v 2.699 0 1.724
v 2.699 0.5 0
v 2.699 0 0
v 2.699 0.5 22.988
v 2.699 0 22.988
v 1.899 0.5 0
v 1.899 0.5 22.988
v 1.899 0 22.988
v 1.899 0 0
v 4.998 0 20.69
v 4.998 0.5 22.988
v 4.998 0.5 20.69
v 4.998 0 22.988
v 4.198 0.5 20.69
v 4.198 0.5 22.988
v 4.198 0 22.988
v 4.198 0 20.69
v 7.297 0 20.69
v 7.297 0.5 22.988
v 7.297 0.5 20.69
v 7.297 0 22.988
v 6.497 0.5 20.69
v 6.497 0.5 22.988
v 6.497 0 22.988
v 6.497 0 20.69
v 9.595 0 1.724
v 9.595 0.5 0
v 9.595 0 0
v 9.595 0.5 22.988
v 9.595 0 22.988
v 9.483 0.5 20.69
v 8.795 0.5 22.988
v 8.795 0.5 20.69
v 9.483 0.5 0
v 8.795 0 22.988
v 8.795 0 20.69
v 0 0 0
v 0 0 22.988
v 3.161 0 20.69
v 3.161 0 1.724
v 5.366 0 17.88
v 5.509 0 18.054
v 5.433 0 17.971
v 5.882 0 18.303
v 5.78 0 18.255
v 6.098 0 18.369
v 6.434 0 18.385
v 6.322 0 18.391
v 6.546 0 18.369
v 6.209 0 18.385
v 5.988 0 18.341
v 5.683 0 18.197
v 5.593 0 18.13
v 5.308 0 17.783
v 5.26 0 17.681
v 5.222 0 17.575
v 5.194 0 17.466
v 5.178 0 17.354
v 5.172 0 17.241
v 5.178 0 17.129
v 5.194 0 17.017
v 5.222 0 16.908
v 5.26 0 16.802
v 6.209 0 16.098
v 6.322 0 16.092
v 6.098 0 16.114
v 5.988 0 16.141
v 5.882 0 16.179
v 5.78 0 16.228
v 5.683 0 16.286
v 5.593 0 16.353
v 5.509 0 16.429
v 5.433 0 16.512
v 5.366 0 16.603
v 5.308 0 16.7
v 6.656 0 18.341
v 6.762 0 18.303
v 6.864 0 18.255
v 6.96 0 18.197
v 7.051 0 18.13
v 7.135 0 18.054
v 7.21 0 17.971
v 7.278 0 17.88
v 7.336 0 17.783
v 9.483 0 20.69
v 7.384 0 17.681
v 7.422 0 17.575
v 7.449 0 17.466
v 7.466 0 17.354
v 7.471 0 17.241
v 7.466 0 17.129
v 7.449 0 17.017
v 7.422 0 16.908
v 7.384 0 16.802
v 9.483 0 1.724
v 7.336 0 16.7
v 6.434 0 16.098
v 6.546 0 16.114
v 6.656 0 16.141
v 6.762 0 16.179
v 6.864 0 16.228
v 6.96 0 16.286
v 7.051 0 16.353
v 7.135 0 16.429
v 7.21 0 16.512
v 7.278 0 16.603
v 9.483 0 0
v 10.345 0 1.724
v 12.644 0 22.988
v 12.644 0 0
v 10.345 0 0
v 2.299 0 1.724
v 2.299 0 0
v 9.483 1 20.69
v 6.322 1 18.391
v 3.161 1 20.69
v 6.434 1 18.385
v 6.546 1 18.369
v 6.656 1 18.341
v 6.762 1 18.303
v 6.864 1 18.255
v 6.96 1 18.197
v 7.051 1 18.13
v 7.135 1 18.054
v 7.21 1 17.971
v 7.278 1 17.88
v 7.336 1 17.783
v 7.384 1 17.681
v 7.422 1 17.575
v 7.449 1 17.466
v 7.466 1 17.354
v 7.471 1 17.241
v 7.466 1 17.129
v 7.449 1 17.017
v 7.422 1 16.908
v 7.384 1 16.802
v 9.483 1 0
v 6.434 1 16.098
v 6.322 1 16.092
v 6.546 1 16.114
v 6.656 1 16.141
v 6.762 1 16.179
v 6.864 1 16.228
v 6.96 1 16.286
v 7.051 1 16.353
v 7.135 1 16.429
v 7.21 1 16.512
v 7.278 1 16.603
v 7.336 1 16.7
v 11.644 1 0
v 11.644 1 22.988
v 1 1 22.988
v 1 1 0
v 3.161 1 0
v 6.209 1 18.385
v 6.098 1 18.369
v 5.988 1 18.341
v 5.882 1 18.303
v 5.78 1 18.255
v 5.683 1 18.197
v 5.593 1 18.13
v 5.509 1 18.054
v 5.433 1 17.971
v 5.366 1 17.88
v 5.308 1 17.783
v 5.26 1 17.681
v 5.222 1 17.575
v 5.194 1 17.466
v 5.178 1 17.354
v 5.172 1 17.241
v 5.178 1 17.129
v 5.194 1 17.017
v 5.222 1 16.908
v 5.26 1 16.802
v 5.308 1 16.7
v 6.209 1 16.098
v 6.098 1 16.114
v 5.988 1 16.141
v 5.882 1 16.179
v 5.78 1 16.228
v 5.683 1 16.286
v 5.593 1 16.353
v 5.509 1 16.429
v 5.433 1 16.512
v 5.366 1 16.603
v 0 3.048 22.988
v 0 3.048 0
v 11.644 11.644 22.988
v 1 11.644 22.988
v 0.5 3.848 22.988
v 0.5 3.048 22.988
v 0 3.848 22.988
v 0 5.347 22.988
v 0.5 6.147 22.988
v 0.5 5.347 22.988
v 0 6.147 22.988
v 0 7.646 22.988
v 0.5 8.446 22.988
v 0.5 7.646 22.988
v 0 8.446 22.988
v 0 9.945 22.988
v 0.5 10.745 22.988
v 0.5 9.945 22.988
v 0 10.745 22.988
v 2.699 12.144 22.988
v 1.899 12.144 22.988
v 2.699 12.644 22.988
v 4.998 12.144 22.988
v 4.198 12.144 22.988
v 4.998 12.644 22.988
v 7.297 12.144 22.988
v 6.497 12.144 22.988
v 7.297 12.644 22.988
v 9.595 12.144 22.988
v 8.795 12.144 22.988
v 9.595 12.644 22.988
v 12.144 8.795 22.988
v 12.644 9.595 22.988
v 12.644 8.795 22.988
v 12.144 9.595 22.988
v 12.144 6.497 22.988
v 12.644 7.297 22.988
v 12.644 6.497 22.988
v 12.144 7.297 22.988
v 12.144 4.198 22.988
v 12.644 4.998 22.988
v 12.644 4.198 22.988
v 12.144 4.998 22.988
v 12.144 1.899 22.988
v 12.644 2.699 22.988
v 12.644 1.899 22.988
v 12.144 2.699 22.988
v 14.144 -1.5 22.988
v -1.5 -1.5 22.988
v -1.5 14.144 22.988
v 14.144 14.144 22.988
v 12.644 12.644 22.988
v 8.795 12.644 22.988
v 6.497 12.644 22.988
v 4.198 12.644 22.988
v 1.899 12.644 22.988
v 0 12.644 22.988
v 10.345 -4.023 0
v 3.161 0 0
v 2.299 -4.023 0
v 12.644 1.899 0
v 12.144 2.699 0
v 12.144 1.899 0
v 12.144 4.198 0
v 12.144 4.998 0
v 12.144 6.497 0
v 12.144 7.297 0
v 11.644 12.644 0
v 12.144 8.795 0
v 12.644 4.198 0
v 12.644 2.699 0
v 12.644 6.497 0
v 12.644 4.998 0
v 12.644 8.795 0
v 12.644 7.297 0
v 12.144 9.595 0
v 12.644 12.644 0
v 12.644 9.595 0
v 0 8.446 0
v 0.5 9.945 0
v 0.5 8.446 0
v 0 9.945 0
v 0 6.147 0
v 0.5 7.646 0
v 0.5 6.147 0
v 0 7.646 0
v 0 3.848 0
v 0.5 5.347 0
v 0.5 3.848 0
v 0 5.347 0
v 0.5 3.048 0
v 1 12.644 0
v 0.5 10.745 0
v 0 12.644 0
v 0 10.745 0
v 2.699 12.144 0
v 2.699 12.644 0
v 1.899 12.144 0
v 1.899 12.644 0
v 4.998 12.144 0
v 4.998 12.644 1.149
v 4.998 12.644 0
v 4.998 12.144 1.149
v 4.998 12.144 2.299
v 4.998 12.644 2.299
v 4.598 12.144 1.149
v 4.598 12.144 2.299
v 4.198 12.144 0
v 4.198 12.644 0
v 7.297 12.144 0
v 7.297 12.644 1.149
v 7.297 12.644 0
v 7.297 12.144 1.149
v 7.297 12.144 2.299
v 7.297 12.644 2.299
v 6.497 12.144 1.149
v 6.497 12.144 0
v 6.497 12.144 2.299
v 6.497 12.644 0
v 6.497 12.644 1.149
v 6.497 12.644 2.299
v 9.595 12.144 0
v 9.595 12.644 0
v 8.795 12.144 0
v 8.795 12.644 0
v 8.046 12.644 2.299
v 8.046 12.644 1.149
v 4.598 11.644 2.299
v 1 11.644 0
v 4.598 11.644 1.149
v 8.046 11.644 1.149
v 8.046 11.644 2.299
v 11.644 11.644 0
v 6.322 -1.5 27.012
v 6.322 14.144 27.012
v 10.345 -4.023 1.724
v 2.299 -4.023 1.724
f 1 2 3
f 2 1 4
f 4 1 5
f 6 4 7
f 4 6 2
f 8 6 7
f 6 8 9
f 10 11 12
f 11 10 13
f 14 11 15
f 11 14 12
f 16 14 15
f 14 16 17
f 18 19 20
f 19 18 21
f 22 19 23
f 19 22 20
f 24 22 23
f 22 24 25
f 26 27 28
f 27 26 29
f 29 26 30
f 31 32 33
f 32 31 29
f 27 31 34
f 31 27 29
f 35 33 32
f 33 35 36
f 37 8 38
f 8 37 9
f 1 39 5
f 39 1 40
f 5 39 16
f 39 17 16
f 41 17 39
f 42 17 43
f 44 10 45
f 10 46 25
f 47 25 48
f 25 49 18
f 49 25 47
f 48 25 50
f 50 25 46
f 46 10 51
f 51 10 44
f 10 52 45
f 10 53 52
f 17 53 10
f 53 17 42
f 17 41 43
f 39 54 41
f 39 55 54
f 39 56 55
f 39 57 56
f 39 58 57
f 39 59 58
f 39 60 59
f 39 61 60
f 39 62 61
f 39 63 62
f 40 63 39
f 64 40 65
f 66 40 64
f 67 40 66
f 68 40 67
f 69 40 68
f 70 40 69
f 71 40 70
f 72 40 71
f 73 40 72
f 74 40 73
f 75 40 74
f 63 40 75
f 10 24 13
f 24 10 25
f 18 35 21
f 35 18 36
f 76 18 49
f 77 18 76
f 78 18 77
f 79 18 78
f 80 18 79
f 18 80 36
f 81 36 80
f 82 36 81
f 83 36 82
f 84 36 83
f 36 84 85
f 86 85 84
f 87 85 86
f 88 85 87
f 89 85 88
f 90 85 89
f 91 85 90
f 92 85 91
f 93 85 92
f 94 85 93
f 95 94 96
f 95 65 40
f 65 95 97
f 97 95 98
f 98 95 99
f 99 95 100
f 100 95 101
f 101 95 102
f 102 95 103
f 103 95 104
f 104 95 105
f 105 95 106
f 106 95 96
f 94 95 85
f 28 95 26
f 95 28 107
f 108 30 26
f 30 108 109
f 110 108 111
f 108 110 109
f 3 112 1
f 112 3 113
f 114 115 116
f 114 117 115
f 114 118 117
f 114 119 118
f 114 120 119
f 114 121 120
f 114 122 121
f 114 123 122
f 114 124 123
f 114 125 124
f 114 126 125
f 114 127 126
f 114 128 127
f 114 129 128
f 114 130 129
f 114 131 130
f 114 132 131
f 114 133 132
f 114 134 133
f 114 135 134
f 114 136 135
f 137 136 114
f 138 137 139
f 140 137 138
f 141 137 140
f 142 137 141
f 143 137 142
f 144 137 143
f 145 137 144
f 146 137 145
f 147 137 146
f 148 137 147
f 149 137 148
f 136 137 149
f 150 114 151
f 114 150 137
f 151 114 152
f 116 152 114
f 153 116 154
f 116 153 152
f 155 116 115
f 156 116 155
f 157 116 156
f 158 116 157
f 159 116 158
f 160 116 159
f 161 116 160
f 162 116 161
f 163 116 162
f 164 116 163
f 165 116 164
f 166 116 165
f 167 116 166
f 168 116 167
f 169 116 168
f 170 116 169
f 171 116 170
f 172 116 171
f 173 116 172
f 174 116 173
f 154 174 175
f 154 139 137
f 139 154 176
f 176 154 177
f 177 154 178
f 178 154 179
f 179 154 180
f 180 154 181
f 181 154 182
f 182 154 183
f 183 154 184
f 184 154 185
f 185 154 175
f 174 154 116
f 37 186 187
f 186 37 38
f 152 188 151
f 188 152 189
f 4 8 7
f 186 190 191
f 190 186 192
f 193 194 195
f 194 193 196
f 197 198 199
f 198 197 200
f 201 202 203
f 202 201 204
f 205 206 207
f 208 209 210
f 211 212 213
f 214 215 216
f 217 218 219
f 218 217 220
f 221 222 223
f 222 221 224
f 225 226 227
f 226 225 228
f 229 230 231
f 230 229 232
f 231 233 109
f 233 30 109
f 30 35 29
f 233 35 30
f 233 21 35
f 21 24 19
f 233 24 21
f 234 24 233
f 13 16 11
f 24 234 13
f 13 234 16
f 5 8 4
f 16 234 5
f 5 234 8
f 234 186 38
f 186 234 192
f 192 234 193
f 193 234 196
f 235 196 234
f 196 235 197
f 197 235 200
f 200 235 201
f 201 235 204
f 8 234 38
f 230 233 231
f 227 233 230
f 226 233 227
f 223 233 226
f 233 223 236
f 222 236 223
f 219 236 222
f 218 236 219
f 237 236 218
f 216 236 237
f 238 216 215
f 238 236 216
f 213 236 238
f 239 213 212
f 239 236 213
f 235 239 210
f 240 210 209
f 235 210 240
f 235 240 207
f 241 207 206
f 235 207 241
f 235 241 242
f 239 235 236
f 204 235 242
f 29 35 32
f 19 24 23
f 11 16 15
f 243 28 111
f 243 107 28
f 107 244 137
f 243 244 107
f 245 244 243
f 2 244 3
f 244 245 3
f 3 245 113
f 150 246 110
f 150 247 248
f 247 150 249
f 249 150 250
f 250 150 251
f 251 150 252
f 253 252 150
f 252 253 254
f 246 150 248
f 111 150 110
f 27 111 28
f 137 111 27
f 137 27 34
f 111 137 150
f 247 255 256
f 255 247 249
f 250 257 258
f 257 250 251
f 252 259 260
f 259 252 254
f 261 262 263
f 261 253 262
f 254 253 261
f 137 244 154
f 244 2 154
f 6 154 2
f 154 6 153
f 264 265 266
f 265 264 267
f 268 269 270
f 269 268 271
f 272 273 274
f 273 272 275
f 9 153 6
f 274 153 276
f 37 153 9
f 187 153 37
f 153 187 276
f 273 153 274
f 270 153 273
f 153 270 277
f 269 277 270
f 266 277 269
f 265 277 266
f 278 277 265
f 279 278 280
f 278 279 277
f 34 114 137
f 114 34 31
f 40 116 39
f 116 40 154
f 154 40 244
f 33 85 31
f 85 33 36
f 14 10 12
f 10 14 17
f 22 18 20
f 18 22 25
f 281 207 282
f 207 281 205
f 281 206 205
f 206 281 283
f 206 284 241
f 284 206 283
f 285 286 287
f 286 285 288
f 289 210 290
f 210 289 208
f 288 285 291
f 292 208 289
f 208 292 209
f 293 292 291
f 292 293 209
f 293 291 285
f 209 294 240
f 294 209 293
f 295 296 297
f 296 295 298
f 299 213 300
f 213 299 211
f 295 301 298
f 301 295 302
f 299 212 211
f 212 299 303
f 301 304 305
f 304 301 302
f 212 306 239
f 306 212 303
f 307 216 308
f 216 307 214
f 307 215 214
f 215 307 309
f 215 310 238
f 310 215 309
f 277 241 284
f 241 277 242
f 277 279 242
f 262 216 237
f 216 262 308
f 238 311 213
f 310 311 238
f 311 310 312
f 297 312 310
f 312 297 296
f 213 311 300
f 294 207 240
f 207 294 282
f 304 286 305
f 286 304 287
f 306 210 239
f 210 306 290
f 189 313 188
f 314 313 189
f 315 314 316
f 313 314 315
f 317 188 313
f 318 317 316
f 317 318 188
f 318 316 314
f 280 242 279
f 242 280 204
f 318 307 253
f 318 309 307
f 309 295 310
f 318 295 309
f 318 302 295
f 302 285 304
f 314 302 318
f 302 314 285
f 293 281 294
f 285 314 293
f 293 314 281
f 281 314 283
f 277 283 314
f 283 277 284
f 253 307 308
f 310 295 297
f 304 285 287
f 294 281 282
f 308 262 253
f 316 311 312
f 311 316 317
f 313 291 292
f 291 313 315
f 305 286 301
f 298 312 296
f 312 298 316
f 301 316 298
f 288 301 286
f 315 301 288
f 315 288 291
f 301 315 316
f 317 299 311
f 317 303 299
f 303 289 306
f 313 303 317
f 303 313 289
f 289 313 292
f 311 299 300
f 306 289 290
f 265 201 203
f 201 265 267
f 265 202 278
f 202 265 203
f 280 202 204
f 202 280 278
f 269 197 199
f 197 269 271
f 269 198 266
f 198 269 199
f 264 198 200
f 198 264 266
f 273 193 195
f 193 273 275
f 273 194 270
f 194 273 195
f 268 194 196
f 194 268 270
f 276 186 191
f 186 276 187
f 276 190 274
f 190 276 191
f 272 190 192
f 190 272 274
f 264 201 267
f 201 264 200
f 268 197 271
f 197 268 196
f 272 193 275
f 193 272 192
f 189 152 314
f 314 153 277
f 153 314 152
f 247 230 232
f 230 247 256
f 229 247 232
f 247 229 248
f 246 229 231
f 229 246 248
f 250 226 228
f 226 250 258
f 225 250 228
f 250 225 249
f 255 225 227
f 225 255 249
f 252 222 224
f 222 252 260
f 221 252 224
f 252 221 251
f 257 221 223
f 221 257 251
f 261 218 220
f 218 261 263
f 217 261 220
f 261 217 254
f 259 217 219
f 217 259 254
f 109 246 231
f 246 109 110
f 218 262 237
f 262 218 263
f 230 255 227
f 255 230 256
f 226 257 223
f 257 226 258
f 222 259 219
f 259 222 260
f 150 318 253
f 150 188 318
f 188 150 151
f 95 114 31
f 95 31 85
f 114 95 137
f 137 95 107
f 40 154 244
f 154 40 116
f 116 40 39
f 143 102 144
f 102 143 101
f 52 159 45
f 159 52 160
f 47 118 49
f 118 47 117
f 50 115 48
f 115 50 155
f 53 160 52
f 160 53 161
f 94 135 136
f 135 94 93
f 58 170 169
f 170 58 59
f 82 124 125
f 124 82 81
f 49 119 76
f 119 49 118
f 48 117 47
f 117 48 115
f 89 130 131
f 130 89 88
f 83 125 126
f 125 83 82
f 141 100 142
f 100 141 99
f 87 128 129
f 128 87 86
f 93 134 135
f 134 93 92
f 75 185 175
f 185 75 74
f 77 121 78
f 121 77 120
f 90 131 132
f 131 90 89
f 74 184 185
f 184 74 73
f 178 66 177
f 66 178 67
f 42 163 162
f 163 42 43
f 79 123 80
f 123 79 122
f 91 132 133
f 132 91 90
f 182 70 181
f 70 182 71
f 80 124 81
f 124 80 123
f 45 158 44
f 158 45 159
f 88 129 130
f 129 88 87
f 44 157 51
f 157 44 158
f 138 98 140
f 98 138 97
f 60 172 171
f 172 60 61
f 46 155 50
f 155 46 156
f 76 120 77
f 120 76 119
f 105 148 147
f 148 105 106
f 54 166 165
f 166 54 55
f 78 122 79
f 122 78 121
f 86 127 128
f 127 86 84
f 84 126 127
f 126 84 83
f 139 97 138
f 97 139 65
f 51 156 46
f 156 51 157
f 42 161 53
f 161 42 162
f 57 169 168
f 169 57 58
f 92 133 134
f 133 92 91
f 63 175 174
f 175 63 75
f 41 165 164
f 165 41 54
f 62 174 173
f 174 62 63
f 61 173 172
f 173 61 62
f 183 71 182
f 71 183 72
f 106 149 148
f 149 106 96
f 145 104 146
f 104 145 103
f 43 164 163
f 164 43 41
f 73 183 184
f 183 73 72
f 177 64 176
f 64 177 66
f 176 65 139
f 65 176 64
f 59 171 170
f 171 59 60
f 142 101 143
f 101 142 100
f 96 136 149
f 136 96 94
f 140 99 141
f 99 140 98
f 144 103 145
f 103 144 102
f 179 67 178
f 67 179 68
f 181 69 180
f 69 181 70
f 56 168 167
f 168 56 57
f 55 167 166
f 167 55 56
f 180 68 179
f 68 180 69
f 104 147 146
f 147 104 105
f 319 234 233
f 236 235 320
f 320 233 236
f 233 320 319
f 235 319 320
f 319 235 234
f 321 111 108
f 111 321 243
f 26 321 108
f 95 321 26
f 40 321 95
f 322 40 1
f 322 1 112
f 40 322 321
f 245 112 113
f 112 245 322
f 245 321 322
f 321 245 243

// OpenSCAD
// file: slawojka_step.scad
/*
 * PROMPT: Entrance step of the Polish outdoor toilet (sławojka) in H0 scale (1:87).
 * Small flat concrete slab placed in front of the door. Printed flat.
 */

$fn = 32;
S = 1/87;

step_w_real = 700;
step_d_real = 350;
step_h_real = 150;

step_w = step_w_real * S;
step_d = step_d_real * S;
step_h = step_h_real * S;

module step() {
    cube([step_w, step_d, step_h]);
}

step();
// file: slawojka_roof.scad
/*
 * PROMPT: Roof parts and assembled roof of the Polish outdoor toilet (sławojka) in H0
 * scale (1:87). Gabled roof with 1.5 mm overhang on all sides. Provides flat printable
 * panels (two slope rectangles + two gable triangles) and an assembled polyhedron
 * module for use in the assembly file. Print layout: all four panels laid flat.
 */

$fn = 32;
S = 1/87;
panel_t = 1.0;

bld_w_real   = 1100;
bld_d_real   = 1100;
bld_h_real   = 2000;
roof_oh      = 1.5;
roof_rise    = 350 * S;

bld_w = bld_w_real * S;
bld_d = bld_d_real * S;
bld_h = bld_h_real * S;

rw       = bld_w + 2*roof_oh;
rd       = bld_d + 2*roof_oh;
slope_w  = sqrt(pow(rw/2, 2) + pow(roof_rise, 2));

// One slope panel printed flat (both slopes are identical rectangles)
module roof_slope() {
    cube([slope_w, rd, panel_t]);
}

// One gable triangle panel printed flat
module roof_gable() {
    linear_extrude(panel_t)
        polygon([[0, 0], [rw, 0], [rw/2, roof_rise]]);
}

// Full assembled roof as polyhedron — used by the assembly file, not for printing
module roof_assembled() {
    translate([-roof_oh, -roof_oh, bld_h])
        polyhedron(
            points = [
                [0,    0,         0],
                [rw,   0,         0],
                [rw,   rd,        0],
                [0,    rd,        0],
                [rw/2, 0,  roof_rise],
                [rw/2, rd, roof_rise],
            ],
            faces = [
                [0, 3, 2, 1],
                [0, 1, 4],
                [3, 5, 2],
                [1, 2, 5, 4],
                [0, 4, 5, 3],
            ]
        );
}

// ── PRINT LAYOUT ──────────────────────────────────────────────────────────────
// Two slope panels side by side, two gable triangles below
roof_slope();
translate([slope_w + 2, 0, 0])
    roof_slope();
translate([0, rd + 2, 0])
    roof_gable();
translate([rw + 2, rd + 2, 0])
    roof_gable();
// file: slawojka_door.scad
/*
 * PROMPT: Door panel of the Polish outdoor toilet (sławojka) in H0 scale (1:87).
 * Traditional circular moon cutout centred horizontally and positioned near the top.
 * Flat 1 mm panel, exterior face up.
 */

$fn = 64;
S = 1/87;
panel_t = 1.0;

door_w_real = 550;
door_h_real = 1800;
moon_r_real = 100;
moon_z_real = 1500;

door_w = door_w_real * S;
door_h = door_h_real * S;
moon_r = moon_r_real * S;
moon_z = moon_z_real * S;

module door() {
    difference() {
        cube([door_w, door_h, panel_t]);

        // circular moon cutout, centred horizontally
        translate([door_w/2, moon_z, -1])
            cylinder(r=moon_r, h=panel_t+2, $fn=64);
    }
}

door();
// file: slawojka_wall_side.scad
/*
 * PROMPT: Side wall panel of the Polish outdoor toilet (sławojka) in H0 scale (1:87).
 * Plain facade with vertical plank grooves on exterior face. Used for both left and
 * right sides (identical). Flat 1 mm panel, exterior face up.
 */

$fn = 32;
S = 1/87;
panel_t = 1.0;

bld_d_real   = 1100;
bld_h_real   = 2000;
plank_period = 200 * S;
groove_w     = 0.8;
groove_d     = 0.5;

bld_d = bld_d_real * S;
bld_h = bld_h_real * S;

module wall_side() {
    difference() {
        cube([bld_d, bld_h, panel_t]);

        // vertical plank grooves on exterior face
        for (i = [1 : floor(bld_d / plank_period) - 1]) {
            gx = i * plank_period - groove_w/2;
            translate([gx, -1, panel_t - groove_d])
                cube([groove_w, bld_h+2, groove_d+1]);
        }
    }
}

wall_side();
// file: slawojka_wall_back.scad
/*
 * PROMPT: Back wall panel of the Polish outdoor toilet (sławojka) in H0 scale (1:87).
 * Centred ventilation slot near the top, vertical plank grooves on exterior face.
 * Flat 1 mm panel, exterior face up.
 */

$fn = 32;
S = 1/87;
panel_t = 1.0;

bld_w_real   = 1100;
bld_h_real   = 2000;
vent_w_real  = 300;
vent_h_real  = 100;
vent_z_real  = 1800;
plank_period = 200 * S;
groove_w     = 0.8;
groove_d     = 0.5;

bld_w  = bld_w_real * S;
bld_h  = bld_h_real * S;
vent_w = vent_w_real * S;
vent_h = vent_h_real * S;
vent_z = vent_z_real * S;

module wall_back() {
    difference() {
        cube([bld_w, bld_h, panel_t]);

        // ventilation slot, centred, near top
        translate([(bld_w - vent_w)/2, vent_z, -1])
            cube([vent_w, vent_h, panel_t+2]);

        // vertical plank grooves on exterior face
        for (i = [1 : floor(bld_w / plank_period) - 1]) {
            gx = i * plank_period - groove_w/2;
            translate([gx, -1, panel_t - groove_d])
                cube([groove_w, bld_h+2, groove_d+1]);
        }
    }
}

wall_back();
// file: slawojka_wall_front.scad
/*
 * PROMPT: Front wall panel of the Polish outdoor toilet (sławojka) in H0 scale (1:87).
 * Centred door opening from floor to door height, vertical plank grooves on exterior
 * face. Flat 1 mm panel, exterior face up.
 */

$fn = 32;
S = 1/87;
panel_t = 1.0;

bld_w_real    = 1100;
bld_h_real    = 2000;
door_w_real   = 550;
door_h_real   = 1800;
plank_period  = 200 * S;
groove_w      = 0.8;
groove_d      = 0.5;

bld_w  = bld_w_real * S;
bld_h  = bld_h_real * S;
door_w = door_w_real * S;
door_h = door_h_real * S;

module wall_front() {
    difference() {
        cube([bld_w, bld_h, panel_t]);

        // door opening, centred, from floor
        translate([(bld_w - door_w)/2, 0, -1])
            cube([door_w, door_h, panel_t+2]);

        // vertical plank grooves on exterior face
        for (i = [1 : floor(bld_w / plank_period) - 1]) {
            gx = i * plank_period - groove_w/2;
            translate([gx, -1, panel_t - groove_d])
                cube([groove_w, bld_h+2, groove_d+1]);
        }
    }
}

wall_front();
// main file
/*
 * PROMPT: Assembly of the Polish outdoor toilet (sławojka) in H0 scale (1:87).
 * Positions all wall panels, door, roof and entrance step in their correct assembled
 * locations. For visualization and GitHub preview only — not for printing.
 */

use <slawojka_wall_front.scad>
use <slawojka_wall_back.scad>
use <slawojka_wall_side.scad>
use <slawojka_door.scad>
use <slawojka_roof.scad>
use <slawojka_step.scad>

$fn = 64;
S       = 1/87;
panel_t = 1.0;
bld_w   = 1100 * S;
bld_d   = 1100 * S;
bld_h   = 2000 * S;
door_w  = 550  * S;
door_h  = 1800 * S;
step_w  = 700  * S;
step_d  = 350  * S;
step_h  = 150  * S;

// Front wall — exterior at Y=0
translate([0, panel_t, 0])
    rotate([90, 0, 0])
        wall_front();

// Back wall — exterior at Y=bld_d
translate([0, bld_d - panel_t, bld_h])
    rotate([-90, 0, 0])
        wall_back();

// Left wall — exterior at X=0
translate([panel_t, bld_d, 0])
    rotate([0, 0, -90])
        rotate([90, 0, 0])
            wall_side();

// Right wall — exterior at X=bld_w
translate([bld_w - panel_t, 0, 0])
    rotate([0, 0, 90])
        rotate([90, 0, 0])
            wall_side();

// Door — in front wall opening, centred
translate([(bld_w - door_w)/2, panel_t, 0])
    rotate([90, 0, 0])
        door();

// Roof — assembled polyhedron
roof_assembled();

// Entrance step — centred in front of door
translate([(bld_w - step_w)/2, -step_d, 0])
    step();
